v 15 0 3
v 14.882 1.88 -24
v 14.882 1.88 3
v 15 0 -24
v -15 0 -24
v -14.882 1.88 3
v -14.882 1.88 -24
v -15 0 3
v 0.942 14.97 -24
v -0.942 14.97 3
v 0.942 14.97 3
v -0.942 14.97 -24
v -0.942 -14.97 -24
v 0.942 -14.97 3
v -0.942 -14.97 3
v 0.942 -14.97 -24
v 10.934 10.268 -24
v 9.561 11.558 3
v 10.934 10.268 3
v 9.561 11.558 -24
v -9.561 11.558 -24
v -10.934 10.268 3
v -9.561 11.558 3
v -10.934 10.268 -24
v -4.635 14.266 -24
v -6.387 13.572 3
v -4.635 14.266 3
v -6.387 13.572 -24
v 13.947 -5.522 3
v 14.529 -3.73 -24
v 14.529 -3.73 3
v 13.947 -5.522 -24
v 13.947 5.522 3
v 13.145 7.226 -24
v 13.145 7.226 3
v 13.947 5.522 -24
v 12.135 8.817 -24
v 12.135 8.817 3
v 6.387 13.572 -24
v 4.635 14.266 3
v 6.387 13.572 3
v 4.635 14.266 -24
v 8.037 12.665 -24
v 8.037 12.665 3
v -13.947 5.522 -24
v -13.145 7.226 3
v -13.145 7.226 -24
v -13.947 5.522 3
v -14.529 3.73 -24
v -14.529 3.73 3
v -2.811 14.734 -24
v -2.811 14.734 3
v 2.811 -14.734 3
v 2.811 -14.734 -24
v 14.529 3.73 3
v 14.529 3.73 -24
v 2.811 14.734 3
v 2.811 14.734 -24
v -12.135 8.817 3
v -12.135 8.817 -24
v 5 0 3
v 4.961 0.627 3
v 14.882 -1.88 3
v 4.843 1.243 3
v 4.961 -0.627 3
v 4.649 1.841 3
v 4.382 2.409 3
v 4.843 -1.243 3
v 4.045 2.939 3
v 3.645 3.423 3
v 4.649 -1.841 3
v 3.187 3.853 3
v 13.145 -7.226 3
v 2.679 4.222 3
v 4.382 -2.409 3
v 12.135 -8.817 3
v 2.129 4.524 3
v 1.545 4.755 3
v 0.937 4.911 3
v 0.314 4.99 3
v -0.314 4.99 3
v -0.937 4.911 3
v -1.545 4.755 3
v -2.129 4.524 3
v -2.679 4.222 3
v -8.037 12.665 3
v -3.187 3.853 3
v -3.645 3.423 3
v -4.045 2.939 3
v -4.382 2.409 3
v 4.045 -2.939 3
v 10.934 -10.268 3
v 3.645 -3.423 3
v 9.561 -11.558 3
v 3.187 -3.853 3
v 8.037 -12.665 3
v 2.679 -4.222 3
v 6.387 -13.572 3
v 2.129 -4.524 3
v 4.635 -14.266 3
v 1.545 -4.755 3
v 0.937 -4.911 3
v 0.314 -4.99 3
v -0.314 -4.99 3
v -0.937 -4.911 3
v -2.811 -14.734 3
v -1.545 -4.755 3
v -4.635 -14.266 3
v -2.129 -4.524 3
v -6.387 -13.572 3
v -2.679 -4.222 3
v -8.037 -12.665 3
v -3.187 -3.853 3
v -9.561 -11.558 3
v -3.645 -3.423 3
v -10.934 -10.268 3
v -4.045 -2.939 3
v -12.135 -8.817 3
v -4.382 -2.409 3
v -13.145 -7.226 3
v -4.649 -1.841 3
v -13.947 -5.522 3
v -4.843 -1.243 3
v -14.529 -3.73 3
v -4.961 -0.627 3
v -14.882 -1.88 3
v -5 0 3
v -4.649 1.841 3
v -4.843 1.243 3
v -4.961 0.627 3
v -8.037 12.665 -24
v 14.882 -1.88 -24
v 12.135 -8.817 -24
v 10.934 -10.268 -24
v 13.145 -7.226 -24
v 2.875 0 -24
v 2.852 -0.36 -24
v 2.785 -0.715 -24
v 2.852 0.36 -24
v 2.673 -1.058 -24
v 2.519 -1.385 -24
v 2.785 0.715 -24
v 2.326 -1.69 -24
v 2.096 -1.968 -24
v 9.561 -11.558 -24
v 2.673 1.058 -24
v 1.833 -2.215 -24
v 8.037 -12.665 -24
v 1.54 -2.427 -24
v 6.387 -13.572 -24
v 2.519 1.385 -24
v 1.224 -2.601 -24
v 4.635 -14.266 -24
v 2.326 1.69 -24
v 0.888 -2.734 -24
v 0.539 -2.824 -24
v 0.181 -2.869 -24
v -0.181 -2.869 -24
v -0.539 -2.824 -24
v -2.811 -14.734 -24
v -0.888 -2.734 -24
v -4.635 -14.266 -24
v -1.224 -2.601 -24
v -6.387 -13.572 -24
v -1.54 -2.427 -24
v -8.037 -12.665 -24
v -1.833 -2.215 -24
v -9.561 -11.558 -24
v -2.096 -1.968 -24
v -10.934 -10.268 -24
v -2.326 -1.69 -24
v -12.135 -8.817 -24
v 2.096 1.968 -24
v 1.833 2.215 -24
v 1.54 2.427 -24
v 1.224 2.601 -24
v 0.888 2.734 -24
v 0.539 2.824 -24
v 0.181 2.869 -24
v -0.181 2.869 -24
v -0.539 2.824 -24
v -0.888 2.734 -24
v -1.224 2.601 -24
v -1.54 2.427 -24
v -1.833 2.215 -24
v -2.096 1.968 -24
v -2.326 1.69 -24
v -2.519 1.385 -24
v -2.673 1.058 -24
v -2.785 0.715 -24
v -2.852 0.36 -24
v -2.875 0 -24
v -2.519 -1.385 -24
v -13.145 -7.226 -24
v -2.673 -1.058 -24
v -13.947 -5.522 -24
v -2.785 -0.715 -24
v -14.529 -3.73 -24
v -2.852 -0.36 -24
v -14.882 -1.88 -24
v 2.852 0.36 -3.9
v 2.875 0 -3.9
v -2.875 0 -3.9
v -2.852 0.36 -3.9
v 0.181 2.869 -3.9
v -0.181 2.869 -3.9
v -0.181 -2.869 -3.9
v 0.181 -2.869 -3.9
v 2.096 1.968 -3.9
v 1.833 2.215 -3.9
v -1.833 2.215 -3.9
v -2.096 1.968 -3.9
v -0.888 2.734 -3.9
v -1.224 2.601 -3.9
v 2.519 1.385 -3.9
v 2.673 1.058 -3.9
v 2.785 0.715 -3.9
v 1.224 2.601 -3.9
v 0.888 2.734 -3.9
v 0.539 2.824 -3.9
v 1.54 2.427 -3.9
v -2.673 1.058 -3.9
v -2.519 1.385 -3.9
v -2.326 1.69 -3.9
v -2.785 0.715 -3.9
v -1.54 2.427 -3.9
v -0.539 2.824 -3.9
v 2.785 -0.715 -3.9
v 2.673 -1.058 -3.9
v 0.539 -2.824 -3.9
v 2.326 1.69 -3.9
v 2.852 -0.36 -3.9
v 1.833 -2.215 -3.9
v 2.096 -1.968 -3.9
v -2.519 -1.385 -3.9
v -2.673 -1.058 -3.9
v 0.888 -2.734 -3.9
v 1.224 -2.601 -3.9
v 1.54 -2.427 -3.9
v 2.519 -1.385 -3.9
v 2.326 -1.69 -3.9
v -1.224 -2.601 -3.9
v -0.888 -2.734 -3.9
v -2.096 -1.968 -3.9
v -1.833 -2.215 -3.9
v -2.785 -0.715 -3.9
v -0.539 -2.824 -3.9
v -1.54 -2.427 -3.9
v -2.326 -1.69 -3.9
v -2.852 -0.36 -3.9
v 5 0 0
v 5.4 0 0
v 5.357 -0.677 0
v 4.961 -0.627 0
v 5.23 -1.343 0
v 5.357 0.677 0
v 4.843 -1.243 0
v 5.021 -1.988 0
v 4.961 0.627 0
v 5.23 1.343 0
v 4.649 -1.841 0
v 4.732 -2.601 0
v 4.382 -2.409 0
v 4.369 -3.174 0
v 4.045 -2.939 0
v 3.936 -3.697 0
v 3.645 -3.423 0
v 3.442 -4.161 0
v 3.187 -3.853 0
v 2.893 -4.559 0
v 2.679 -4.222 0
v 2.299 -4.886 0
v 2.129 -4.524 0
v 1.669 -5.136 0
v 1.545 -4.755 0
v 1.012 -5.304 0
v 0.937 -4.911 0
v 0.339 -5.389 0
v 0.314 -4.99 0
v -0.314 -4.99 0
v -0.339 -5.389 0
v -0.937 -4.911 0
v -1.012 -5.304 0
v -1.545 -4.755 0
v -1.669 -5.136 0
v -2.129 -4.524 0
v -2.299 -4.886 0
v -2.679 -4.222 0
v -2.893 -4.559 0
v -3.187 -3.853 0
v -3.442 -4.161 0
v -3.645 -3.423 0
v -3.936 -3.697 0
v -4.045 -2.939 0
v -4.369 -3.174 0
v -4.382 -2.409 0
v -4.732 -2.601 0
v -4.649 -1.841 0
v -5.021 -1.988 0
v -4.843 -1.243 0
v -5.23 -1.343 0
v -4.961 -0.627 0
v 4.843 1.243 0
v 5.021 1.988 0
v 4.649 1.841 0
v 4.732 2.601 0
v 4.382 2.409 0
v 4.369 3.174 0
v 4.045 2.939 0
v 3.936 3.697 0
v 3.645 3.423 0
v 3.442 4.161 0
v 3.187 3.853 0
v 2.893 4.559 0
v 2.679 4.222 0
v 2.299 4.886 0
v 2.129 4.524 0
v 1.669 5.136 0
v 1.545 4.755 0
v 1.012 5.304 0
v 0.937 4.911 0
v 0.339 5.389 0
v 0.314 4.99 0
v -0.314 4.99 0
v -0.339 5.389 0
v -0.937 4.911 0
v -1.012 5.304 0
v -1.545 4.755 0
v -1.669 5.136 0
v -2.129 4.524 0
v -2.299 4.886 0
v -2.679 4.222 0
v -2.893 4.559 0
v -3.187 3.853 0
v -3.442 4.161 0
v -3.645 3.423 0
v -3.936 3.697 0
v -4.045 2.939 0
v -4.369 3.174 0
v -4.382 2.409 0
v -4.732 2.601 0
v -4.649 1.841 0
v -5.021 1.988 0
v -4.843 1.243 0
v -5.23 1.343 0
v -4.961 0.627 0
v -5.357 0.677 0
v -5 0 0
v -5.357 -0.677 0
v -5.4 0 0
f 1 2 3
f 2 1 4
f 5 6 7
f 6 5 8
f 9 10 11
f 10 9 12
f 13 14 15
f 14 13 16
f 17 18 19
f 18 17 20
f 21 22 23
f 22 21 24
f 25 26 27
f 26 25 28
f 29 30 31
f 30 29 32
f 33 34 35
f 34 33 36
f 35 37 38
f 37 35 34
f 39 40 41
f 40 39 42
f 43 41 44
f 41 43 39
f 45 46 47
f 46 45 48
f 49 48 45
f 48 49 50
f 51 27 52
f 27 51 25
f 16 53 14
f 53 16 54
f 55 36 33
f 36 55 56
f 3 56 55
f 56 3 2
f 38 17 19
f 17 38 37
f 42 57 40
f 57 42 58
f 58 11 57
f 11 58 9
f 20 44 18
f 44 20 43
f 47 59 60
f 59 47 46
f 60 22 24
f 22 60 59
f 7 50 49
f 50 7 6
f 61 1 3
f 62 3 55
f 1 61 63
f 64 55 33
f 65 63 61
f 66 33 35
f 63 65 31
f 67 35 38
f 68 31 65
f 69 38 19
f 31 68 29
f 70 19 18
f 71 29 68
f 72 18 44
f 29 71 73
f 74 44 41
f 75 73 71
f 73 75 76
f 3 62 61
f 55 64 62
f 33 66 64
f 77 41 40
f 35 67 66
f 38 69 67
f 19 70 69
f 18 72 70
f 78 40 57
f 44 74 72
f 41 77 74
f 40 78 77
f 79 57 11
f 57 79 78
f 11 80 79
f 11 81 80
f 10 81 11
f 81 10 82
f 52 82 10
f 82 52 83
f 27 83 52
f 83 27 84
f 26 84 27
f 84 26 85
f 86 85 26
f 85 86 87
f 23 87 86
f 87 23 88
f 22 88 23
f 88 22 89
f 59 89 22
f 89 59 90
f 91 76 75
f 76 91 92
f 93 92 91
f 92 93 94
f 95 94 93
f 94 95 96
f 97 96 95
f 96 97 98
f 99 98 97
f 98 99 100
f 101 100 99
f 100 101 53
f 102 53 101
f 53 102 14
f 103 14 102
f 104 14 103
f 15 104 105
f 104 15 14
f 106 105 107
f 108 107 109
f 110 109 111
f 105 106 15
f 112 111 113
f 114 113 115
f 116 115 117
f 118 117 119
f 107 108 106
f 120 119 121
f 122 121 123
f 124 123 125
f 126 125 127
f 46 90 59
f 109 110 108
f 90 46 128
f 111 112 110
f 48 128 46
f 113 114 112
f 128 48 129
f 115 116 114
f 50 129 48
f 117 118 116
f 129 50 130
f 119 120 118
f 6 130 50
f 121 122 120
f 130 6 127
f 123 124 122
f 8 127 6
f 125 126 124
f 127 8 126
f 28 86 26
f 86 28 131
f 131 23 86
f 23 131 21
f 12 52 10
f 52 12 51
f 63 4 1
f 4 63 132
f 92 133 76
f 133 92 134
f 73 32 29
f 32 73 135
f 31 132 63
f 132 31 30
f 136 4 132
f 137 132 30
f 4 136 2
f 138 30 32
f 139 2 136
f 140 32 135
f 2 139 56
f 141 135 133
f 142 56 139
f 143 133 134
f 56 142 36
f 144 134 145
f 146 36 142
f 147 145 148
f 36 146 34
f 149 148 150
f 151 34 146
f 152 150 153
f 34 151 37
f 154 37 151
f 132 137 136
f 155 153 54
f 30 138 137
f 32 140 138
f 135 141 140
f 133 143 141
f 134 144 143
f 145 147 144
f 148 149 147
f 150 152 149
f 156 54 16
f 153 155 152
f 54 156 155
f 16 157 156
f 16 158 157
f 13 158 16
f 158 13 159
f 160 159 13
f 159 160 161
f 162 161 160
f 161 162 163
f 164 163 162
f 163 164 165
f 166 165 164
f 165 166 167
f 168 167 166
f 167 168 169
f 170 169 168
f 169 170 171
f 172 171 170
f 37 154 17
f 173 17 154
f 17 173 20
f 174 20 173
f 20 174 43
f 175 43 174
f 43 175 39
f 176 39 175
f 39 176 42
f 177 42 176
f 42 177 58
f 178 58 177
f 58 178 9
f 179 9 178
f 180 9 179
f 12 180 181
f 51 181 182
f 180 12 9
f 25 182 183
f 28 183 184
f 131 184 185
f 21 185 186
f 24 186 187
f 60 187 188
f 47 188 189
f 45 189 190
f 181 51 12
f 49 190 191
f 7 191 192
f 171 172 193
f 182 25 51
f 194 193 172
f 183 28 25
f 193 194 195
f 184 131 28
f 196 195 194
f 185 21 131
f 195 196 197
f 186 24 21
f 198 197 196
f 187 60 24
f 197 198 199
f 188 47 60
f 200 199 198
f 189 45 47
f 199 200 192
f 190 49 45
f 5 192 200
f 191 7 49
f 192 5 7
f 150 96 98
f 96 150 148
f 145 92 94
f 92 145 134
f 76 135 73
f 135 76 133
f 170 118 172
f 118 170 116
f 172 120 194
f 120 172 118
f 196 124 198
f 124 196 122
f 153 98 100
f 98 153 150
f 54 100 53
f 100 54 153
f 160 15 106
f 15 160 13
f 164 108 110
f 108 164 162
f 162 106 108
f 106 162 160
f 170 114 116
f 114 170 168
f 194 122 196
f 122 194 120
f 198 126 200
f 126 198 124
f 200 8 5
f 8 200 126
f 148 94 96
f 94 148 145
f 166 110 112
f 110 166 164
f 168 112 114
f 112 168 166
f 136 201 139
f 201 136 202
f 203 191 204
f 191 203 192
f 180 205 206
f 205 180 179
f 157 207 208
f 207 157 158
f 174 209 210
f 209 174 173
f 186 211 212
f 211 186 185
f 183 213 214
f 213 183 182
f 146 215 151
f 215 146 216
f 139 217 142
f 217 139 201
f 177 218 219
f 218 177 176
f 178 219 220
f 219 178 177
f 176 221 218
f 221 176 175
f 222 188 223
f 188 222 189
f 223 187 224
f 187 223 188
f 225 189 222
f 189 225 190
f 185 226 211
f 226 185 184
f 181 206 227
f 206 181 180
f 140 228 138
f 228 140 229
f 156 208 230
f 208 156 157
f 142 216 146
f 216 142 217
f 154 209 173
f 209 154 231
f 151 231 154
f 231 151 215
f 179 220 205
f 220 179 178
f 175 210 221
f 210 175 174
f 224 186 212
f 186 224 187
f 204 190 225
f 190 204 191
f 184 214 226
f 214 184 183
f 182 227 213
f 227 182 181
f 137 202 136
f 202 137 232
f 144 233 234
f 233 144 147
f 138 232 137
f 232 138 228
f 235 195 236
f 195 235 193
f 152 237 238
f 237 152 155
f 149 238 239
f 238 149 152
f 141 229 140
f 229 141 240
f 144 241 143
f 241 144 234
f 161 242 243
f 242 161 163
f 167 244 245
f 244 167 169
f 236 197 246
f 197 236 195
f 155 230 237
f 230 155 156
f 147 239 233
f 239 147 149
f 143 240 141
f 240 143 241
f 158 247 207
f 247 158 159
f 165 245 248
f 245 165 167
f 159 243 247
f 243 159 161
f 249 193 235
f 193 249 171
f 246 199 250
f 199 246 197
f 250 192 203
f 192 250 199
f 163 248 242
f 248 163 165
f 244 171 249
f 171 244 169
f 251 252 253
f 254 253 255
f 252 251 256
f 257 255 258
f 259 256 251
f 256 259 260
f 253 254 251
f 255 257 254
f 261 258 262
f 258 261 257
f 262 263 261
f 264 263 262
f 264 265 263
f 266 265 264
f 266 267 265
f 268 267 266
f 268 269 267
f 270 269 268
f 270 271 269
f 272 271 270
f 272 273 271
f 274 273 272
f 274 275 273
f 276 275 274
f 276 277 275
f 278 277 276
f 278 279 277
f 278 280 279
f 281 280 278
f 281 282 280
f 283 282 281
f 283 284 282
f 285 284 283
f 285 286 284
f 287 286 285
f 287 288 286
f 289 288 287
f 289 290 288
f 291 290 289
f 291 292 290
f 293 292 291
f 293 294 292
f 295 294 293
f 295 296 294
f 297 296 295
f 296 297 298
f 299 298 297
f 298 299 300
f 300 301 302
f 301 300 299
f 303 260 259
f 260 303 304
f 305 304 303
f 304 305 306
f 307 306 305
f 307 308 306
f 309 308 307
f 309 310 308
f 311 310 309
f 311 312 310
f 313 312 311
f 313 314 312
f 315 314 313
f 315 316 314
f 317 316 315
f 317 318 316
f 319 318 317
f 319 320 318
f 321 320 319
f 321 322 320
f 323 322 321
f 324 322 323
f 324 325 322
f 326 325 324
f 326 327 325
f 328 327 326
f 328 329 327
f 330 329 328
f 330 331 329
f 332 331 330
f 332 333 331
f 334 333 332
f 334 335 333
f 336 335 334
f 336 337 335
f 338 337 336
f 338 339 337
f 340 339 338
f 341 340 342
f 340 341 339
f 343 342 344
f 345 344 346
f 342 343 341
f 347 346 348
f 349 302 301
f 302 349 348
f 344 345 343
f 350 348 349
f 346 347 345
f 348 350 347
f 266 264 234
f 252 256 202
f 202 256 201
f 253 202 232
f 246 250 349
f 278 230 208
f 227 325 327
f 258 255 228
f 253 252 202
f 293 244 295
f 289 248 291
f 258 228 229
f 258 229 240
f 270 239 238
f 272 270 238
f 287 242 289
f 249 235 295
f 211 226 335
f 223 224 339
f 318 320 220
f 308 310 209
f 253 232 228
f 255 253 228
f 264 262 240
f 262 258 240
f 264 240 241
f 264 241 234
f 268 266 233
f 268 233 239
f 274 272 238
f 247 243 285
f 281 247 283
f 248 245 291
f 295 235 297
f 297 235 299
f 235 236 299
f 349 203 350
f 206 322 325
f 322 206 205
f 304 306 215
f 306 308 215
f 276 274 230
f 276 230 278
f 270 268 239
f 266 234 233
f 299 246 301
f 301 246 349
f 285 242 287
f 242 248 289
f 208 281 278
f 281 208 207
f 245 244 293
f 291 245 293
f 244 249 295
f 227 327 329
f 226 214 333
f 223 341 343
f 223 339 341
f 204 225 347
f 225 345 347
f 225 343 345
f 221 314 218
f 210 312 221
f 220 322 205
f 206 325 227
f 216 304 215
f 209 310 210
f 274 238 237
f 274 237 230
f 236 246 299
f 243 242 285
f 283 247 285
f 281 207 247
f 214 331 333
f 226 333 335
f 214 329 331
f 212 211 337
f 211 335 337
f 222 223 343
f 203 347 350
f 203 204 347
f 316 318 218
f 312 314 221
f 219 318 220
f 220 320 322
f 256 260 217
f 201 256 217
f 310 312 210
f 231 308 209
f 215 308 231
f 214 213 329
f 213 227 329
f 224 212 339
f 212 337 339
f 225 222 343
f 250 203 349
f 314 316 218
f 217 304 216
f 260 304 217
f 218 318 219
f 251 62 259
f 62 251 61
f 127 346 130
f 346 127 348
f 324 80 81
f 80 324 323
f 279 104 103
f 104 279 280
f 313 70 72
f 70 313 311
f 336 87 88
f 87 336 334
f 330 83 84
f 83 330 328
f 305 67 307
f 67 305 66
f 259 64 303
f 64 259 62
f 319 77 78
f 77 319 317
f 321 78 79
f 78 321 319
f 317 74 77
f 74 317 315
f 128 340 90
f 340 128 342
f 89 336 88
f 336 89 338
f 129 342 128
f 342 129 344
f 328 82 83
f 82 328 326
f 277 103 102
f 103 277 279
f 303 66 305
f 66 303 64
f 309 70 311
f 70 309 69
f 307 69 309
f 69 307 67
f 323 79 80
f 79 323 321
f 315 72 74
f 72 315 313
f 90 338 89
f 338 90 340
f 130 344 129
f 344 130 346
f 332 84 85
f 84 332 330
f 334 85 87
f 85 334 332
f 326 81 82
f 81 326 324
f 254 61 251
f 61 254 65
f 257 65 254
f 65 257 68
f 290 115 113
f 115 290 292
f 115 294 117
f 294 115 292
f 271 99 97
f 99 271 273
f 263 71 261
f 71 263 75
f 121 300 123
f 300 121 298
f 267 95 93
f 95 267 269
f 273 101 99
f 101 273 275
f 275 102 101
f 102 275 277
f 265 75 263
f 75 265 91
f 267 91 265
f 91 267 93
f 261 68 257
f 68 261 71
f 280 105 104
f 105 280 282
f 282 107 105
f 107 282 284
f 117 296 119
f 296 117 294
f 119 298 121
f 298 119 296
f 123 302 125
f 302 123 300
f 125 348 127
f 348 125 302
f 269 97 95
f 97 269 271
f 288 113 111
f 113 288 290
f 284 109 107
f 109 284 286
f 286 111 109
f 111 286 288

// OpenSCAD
$fn = 50;

difference() {
	union() {
		translate(v = [0, 0, -24.0]) {
			cylinder(h = 27, r = 15.0);
		}
		#translate(v = [0, 0, -27.0]) {
			cylinder(h = 27, r = 2.875);
		}
	}
	union() {
		translate(v = [0, 0, 0]) {
			rotate(a = [0, 0, 0]) {
				difference() {
					union() {
						translate(v = [0, 0, -27.0]) {
							cylinder(h = 27, r = 2.6);
						}
						translate(v = [0, 0, -3.9]) {
							cylinder(h = 3.9, r1 = 2.875, r2 = 5.4);
						}
						translate(v = [0, 0, -27.0]) {
							cylinder(h = 27, r = 2.875);
						}
						translate(v = [0, 0, -27.0]) {
							cylinder(h = 27, r = 2.6);
						}
					}
					union();
				}
			}
		}
		#cylinder(h = 3, r = 5.0);
	}
}
